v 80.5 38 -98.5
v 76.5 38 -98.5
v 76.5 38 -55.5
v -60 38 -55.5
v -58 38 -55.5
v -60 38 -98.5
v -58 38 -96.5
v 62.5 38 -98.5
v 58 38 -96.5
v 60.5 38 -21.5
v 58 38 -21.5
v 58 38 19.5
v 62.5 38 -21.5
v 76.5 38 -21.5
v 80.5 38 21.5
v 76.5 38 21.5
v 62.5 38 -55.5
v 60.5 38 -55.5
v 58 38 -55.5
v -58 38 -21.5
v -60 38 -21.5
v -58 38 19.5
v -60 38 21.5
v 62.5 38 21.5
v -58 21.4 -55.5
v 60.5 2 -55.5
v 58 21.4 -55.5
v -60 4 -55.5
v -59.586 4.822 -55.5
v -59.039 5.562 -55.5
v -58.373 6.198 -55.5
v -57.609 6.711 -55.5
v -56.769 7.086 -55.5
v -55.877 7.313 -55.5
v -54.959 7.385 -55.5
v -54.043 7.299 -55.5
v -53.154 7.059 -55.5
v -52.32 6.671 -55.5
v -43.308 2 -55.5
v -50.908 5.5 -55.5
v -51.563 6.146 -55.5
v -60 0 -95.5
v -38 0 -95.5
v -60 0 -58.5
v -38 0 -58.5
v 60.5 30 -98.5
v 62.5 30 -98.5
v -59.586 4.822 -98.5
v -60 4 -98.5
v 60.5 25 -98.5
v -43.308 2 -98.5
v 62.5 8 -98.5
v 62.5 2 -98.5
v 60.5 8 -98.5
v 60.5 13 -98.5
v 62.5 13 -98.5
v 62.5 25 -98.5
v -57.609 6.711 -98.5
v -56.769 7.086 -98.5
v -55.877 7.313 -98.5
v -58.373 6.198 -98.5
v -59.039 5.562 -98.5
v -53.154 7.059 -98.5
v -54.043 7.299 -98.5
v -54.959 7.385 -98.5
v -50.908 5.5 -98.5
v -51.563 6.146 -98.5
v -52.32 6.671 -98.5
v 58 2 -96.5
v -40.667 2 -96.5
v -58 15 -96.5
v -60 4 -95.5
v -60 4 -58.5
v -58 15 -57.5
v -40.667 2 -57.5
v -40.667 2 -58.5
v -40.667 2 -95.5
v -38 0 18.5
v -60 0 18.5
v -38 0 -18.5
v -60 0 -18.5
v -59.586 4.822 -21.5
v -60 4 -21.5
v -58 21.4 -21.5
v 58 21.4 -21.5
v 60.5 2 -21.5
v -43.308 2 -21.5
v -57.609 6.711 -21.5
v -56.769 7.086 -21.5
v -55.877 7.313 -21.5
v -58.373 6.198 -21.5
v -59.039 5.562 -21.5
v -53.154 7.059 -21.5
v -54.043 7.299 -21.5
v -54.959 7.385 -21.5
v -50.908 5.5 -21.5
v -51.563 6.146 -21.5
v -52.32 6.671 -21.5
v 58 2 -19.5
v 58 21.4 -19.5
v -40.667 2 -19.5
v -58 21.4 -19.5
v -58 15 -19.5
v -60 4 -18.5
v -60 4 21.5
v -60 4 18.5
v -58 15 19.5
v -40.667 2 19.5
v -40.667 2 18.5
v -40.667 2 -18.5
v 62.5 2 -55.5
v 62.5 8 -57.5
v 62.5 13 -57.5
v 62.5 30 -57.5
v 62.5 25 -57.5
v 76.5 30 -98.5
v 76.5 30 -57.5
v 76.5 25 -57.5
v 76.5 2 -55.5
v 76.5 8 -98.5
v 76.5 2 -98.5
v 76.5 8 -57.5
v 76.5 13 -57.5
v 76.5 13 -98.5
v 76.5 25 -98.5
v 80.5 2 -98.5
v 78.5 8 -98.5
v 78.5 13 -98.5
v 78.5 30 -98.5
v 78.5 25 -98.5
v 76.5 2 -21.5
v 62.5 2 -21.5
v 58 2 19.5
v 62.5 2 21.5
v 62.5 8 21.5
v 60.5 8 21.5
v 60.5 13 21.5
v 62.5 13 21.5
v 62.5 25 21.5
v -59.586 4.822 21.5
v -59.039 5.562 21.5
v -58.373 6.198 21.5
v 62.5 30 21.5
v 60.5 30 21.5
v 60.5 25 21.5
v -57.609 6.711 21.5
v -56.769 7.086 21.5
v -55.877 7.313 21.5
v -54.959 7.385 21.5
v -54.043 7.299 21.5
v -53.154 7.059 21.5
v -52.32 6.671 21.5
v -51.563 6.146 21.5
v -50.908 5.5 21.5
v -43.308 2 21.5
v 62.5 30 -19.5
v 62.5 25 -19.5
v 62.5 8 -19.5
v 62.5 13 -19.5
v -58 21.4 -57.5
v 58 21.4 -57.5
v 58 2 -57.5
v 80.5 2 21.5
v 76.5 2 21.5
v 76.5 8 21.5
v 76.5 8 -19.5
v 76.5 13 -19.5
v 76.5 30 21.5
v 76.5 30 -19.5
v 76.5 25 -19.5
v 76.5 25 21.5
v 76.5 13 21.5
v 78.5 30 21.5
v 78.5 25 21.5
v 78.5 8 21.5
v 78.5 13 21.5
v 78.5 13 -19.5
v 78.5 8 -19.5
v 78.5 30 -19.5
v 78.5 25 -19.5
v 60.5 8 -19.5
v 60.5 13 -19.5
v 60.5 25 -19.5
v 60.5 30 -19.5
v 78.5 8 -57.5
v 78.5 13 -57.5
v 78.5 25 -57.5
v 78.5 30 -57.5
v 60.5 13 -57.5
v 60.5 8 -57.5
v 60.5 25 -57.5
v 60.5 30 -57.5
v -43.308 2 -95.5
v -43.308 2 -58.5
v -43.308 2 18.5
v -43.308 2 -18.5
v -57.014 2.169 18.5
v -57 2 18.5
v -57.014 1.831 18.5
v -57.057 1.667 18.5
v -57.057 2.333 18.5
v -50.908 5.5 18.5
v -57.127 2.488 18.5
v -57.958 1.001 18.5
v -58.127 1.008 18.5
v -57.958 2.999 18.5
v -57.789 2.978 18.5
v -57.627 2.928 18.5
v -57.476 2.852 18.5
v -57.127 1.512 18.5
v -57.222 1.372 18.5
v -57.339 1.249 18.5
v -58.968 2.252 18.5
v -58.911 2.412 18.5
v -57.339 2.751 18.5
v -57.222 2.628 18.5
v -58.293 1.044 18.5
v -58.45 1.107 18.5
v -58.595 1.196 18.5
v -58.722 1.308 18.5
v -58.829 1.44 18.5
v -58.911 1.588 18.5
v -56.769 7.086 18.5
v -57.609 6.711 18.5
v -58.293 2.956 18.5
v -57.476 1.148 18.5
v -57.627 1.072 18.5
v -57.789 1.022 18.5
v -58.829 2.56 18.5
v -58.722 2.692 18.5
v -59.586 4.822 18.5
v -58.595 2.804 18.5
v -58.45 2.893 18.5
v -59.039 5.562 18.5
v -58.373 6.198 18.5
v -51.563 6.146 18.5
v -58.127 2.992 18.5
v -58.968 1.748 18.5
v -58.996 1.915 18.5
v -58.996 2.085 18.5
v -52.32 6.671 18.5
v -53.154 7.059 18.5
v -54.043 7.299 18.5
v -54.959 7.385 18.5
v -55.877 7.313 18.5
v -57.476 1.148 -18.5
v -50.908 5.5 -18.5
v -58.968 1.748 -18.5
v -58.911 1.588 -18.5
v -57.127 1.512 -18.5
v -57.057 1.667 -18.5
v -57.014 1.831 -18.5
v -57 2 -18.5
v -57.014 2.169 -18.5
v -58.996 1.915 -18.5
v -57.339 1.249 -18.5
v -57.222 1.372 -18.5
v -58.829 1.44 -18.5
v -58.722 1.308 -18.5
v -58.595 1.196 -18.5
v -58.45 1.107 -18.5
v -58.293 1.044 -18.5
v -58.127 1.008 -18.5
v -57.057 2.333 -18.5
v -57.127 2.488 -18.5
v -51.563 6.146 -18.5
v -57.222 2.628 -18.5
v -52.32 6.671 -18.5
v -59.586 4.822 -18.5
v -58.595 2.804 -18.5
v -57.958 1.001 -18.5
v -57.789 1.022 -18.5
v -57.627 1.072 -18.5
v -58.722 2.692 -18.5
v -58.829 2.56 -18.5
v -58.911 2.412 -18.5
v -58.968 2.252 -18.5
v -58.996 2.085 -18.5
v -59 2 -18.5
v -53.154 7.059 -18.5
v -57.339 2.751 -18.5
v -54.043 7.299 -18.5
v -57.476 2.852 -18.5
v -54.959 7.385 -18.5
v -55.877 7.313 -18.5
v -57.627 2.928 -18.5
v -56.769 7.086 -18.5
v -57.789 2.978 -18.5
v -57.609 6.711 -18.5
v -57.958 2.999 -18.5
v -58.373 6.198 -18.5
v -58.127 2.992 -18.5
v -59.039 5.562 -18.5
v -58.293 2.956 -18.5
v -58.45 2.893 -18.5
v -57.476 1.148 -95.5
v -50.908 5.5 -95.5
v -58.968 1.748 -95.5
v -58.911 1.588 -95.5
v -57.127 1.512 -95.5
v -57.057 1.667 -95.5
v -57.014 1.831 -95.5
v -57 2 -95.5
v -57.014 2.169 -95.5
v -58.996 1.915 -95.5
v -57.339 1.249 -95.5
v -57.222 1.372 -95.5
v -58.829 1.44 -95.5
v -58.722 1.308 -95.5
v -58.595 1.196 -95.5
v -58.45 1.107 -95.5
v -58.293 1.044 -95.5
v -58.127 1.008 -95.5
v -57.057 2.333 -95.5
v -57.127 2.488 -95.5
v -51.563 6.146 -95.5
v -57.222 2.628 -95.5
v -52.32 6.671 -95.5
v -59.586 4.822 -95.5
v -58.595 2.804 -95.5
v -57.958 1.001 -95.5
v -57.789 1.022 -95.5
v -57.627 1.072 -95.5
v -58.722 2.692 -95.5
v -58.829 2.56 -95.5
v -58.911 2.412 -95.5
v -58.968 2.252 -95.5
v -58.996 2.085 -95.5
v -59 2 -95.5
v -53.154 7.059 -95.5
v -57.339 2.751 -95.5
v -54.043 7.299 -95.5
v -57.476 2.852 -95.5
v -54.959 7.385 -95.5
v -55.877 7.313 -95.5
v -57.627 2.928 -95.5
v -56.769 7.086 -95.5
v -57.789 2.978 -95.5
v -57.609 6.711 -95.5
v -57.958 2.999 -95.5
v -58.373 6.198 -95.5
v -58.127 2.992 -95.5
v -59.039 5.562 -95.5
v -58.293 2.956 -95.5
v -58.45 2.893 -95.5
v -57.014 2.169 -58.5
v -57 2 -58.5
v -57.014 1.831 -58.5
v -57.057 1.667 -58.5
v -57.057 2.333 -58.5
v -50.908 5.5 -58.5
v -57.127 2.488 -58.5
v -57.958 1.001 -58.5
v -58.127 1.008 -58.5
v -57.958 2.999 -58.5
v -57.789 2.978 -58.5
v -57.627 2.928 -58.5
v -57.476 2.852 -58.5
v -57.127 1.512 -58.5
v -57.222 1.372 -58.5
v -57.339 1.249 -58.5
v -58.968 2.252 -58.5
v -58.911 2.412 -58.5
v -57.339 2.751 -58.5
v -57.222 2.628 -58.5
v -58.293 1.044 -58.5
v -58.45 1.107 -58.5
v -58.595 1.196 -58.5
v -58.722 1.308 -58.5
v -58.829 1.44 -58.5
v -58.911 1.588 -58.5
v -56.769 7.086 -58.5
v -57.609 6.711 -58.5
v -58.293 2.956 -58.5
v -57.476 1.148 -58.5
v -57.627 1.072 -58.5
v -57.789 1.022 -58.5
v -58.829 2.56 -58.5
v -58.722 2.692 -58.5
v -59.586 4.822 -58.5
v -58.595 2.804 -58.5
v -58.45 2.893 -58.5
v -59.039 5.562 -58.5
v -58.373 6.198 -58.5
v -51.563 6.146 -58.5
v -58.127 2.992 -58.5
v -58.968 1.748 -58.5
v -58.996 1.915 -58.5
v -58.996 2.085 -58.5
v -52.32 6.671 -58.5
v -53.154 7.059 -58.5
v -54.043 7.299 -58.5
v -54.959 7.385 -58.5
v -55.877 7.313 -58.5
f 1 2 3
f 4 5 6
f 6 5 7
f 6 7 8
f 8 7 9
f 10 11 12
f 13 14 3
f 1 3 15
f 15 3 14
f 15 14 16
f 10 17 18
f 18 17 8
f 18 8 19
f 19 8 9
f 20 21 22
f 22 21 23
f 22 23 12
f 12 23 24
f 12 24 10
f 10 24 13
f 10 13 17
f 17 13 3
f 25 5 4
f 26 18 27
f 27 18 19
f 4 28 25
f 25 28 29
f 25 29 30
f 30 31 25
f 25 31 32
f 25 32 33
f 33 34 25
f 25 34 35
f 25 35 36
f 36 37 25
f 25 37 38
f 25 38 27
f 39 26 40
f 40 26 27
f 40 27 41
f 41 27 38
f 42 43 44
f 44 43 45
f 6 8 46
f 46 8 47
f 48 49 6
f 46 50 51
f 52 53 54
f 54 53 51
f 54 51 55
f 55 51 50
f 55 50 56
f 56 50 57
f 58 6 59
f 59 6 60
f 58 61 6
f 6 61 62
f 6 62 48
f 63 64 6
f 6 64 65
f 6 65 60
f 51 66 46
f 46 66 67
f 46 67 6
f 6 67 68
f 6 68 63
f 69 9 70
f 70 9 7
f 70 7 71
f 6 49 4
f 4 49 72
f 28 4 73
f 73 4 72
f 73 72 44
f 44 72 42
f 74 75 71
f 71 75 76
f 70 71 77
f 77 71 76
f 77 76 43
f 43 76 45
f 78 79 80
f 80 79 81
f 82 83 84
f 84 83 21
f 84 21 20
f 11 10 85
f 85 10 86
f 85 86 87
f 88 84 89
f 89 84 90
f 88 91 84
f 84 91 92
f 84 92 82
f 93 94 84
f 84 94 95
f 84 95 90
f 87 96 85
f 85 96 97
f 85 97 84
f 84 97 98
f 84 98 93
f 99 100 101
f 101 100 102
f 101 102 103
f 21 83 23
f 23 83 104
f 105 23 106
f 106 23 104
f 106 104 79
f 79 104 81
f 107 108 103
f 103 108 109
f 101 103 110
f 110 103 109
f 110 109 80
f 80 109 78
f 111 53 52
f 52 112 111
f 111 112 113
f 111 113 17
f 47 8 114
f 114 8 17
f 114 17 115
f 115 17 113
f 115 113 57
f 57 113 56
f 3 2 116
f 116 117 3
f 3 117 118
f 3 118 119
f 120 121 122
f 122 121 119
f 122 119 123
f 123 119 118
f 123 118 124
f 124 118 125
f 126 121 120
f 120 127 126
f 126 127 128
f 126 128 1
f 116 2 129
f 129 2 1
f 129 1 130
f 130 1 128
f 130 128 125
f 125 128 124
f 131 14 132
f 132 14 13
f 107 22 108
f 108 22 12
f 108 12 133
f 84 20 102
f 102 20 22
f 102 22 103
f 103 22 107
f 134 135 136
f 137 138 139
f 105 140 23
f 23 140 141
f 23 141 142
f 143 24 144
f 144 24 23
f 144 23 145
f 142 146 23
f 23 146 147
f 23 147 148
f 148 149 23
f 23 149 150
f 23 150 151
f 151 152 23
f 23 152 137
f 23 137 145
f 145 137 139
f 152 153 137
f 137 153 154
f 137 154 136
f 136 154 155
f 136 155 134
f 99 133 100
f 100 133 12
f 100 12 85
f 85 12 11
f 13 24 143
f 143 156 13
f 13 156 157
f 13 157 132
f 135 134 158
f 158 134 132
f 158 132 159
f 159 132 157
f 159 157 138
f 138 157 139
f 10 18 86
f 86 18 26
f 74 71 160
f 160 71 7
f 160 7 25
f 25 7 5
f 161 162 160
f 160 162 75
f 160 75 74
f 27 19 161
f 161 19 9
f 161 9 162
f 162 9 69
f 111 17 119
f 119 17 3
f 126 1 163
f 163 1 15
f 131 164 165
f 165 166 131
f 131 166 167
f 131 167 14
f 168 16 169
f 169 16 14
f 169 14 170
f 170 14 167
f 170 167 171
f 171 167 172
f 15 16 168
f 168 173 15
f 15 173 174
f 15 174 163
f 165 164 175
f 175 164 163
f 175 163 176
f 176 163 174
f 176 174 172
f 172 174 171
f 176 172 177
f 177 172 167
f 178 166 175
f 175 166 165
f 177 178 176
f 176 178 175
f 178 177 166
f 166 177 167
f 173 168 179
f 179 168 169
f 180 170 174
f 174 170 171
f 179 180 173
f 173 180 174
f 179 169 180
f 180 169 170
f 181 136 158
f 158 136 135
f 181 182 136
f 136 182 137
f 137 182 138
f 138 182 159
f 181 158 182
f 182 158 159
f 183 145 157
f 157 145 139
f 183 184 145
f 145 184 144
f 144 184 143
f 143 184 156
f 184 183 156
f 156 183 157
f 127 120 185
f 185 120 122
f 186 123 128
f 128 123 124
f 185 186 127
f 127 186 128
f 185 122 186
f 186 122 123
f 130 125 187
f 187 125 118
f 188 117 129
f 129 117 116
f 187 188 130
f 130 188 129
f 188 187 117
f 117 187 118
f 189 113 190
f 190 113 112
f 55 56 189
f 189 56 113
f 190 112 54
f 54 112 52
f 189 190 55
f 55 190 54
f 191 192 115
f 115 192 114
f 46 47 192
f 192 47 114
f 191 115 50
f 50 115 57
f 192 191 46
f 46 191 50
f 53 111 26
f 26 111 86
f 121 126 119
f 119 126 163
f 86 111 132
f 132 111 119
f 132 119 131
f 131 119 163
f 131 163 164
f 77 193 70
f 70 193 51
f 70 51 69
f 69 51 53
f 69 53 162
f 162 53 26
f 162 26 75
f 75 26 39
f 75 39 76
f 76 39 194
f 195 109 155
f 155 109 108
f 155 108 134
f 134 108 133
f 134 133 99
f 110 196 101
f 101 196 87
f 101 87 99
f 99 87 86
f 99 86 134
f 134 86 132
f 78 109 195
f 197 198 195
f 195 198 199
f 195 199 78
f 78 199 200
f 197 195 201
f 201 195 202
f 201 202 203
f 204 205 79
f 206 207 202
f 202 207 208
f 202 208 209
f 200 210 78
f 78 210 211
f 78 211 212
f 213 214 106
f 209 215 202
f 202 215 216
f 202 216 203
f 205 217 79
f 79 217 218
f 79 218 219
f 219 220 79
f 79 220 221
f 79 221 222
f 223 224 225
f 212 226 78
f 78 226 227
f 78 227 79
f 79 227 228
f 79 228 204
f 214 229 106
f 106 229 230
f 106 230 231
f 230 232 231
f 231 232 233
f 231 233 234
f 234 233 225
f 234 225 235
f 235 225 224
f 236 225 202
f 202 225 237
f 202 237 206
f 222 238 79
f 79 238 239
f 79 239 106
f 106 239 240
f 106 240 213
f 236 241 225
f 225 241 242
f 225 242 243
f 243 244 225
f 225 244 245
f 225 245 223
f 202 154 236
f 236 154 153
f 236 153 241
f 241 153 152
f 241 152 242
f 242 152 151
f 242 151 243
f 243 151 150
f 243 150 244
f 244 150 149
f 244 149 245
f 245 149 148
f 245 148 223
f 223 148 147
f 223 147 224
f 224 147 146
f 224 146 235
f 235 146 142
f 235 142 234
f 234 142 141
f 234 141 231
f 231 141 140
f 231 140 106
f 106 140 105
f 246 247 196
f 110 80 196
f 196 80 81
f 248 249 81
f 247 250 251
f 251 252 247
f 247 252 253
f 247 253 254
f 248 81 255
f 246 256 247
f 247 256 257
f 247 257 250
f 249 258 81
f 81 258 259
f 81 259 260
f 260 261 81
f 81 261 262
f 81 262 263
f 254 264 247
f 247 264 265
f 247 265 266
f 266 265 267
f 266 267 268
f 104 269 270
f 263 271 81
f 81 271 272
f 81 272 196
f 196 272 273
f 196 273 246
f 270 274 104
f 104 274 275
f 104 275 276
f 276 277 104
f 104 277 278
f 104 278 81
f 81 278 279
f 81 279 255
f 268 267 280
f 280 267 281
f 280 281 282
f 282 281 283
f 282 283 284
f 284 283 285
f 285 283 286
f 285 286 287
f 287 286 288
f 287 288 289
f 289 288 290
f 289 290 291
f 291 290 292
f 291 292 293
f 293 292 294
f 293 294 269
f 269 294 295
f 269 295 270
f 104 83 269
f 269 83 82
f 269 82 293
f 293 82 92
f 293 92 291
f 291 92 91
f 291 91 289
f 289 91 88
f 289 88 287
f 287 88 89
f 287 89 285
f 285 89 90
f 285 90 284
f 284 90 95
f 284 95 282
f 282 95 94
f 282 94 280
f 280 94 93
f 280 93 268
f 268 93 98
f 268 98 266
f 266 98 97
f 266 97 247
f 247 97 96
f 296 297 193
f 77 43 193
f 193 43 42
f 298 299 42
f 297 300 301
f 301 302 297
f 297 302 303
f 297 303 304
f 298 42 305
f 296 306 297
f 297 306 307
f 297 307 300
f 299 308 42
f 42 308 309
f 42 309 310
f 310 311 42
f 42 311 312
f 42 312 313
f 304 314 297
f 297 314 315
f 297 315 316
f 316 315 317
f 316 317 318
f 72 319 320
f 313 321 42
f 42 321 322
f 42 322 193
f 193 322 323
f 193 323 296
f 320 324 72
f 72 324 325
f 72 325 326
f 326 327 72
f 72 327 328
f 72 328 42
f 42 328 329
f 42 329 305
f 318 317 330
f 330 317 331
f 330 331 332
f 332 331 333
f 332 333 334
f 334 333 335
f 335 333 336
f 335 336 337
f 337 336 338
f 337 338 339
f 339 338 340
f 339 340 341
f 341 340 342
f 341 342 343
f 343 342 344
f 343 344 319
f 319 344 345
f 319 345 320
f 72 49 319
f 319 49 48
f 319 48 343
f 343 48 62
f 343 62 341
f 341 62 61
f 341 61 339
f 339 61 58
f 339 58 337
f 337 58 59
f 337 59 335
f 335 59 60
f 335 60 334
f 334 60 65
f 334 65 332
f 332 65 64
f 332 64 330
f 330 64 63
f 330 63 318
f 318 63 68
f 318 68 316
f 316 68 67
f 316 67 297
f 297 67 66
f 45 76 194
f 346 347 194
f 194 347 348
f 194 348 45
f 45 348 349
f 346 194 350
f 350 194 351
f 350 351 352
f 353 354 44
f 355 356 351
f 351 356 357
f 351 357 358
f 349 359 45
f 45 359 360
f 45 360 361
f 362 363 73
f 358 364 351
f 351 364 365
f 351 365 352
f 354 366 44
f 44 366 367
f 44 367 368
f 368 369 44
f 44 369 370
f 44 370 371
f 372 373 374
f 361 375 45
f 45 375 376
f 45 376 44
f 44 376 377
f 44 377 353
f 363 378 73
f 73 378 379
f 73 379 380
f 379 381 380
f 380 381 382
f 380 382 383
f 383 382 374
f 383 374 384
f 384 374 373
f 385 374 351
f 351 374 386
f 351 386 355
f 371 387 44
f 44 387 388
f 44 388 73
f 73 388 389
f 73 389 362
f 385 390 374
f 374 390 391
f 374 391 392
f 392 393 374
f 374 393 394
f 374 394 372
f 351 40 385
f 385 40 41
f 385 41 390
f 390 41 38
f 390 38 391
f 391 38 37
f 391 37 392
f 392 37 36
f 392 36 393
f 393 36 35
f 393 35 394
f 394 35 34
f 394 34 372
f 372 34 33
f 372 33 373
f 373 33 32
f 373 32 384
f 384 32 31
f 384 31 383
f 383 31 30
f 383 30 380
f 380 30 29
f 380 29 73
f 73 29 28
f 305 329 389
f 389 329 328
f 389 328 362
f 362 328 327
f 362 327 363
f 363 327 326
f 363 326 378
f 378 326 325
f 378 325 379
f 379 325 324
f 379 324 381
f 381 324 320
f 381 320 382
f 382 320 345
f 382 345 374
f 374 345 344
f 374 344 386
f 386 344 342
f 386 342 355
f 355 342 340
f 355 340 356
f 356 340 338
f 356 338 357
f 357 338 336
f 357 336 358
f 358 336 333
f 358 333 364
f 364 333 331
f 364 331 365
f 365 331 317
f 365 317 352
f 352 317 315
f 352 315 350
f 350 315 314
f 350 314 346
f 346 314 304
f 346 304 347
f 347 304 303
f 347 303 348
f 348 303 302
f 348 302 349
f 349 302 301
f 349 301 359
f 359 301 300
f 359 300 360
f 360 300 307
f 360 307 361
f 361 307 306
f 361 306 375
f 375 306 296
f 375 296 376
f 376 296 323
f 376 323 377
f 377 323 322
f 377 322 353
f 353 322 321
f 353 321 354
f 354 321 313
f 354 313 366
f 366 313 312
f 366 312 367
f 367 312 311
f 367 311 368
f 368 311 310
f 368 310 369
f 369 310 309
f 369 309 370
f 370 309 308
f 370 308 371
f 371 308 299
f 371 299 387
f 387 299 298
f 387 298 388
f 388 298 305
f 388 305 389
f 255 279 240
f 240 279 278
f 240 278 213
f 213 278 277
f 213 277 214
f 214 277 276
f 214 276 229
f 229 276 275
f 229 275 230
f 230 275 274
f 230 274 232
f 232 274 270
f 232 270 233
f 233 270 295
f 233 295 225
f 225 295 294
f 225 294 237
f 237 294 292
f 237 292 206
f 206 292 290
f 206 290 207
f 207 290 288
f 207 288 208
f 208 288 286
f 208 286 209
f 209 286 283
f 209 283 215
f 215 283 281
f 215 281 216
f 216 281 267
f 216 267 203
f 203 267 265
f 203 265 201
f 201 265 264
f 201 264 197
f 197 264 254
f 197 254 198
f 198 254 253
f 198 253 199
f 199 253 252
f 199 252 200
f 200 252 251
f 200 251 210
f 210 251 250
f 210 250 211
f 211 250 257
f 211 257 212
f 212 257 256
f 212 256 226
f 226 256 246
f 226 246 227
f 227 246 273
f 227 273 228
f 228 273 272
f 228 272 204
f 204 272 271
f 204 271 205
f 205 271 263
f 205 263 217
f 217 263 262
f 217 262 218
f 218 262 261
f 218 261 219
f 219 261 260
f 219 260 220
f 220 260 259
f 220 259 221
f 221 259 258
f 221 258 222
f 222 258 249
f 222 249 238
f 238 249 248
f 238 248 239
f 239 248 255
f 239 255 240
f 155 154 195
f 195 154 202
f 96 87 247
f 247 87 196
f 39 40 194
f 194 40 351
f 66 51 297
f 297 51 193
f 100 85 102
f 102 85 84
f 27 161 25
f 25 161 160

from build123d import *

# Parameters (mm, degrees)
SKETCH2_W            = 120
SKETCH2_H            = 43
BOSS_EXTRUDE1_DEPTH  = 38
SKETCH3_W            = 116
SKETCH3_H            = 39
CUT_EXTRUDE1_DEPTH   = 38
BOSS_EXTRUDE2_DEPTH  = 39
SKETCH5_W            = 43
SKETCH5_H            = 38
BOSS_EXTRUDE3_DEPTH  = 2.5
SKETCH6_W            = 2
SKETCH6_H            = 38
BOSS_EXTRUDE4_DEPTH  = 17
SKETCH7_W            = 34
SKETCH7_H            = 38
BOSS_EXTRUDE5_DEPTH  = 18
SKETCH8_W            = 4
SKETCH8_H            = 38
BOSS_EXTRUDE6_DEPTH  = 43
SKETCH9_W            = 18
SKETCH9_H            = 5
CUT_EXTRUDE2_DEPTH   = 41
SKETCH11_W           = 120
SKETCH11_H           = 2
CUT_EXTRUDE3_DEPTH   = 118.5
CUT_EXTRUDE4_DEPTH   = 3
MIRROR4_COPY_1_DEPTH = 3
CUT_EXTRUDE5_START   = -114
SKETCH13_R           = 1
CUT_EXTRUDE5_DEPTH   = 114
SKETCH14_W           = 116
SKETCH14_H           = 2
CUT_EXTRUDE6_DEPTH   = 16.6


with BuildPart() as part:
    # Sketch2 → Boss-Extrude1 (new body)
    with BuildSketch(Plane(origin=(0, 0, 0), x_dir=(1, 0, 0), z_dir=(0, 1, 0))):
        Rectangle(SKETCH2_W, SKETCH2_H)
    extrude(amount=BOSS_EXTRUDE1_DEPTH)

    # Sketch3 → Cut-Extrude1 (cut)
    with BuildSketch(Plane(origin=(0, 38, 0), x_dir=(1, 0, 0), z_dir=(0, 1, 0))):
        Rectangle(SKETCH3_W, SKETCH3_H)
    extrude(amount=-CUT_EXTRUDE1_DEPTH, mode=Mode.SUBTRACT)

    # Sketch4 → Boss-Extrude2 (add)
    with BuildSketch(Plane.XY.offset(-19.5)):
        Polygon((-58, 0), (-58, 15), (-38, 0), align=None)
    extrude(amount=BOSS_EXTRUDE2_DEPTH)

    # Sketch5 → Boss-Extrude3 (add)
    with BuildSketch(Plane(origin=(60, 0, 0), x_dir=(0, 0, -1), z_dir=(1, 0, 0))):
        with Locations((0, 19)):
            Rectangle(SKETCH5_W, SKETCH5_H)
    extrude(amount=BOSS_EXTRUDE3_DEPTH)

    # Sketch6 → Boss-Extrude4 (add)
    with BuildSketch(Plane(origin=(0, 0, -21.5), x_dir=(-1, 0, 0), z_dir=(0, 0, -1))):
        with Locations((-61.5, 19)):
            Rectangle(SKETCH6_W, SKETCH6_H)
    extrude(amount=BOSS_EXTRUDE4_DEPTH)

    # Mirror1: part across plane


with BuildPart() as part_1:
    add(part.part)
    add(part.part.mirror(Plane(origin=(0, 0, -38.5), x_dir=(1, 0, 0), z_dir=(0, 0, -1))))

    # Sketch7 → Boss-Extrude5 (add)
    with BuildSketch(Plane(origin=(62.5, 0, 0), x_dir=(0, 0, -1), z_dir=(1, 0, 0))):
        with Locations((38.5, 19)):
            Rectangle(SKETCH7_W, SKETCH7_H)
    extrude(amount=BOSS_EXTRUDE5_DEPTH)

    # Sketch8 → Boss-Extrude6 (add)
    with BuildSketch(Plane.XY.offset(-21.5)):
        with Locations((78.5, 19)):
            Rectangle(SKETCH8_W, SKETCH8_H)
    boss_extrude6 = extrude(amount=BOSS_EXTRUDE6_DEPTH)

    # Sketch9 → Cut-Extrude2 (cut)
    with BuildSketch(Plane.XY.offset(21.5)):
        with Locations((69.5, 27.5)):
            Rectangle(SKETCH9_W, SKETCH9_H)
        with Locations((69.5, 10.5)):
            Rectangle(SKETCH9_W, SKETCH9_H)
    cut_extrude2 = extrude(amount=-CUT_EXTRUDE2_DEPTH, mode=Mode.SUBTRACT)

    # Mirror2: Boss-Extrude6, Cut-Extrude2 across plane
    add(boss_extrude6.mirror(Plane(origin=(0, 0, -38.5), x_dir=(1, 0, 0), z_dir=(0, 0, -1))))
    add(cut_extrude2.mirror(Plane(origin=(0, 0, -38.5), x_dir=(1, 0, 0), z_dir=(0, 0, -1))), mode=Mode.SUBTRACT)

    # Sketch11 → Cut-Extrude3 (cut)
    with BuildSketch(Plane(origin=(80.5, 0, 0), x_dir=(0, 0, -1), z_dir=(1, 0, 0))):
        with Locations((38.5, 1)):
            Rectangle(SKETCH11_W, SKETCH11_H)
    extrude(amount=-CUT_EXTRUDE3_DEPTH, mode=Mode.SUBTRACT)

    # Sketch12 → Cut-Extrude4 (cut)
    with BuildSketch(Plane.XY.offset(21.5)):
        with BuildLine():
            Line((-38, 2), (-49.614835193, 2))
            ThreePointArc((-49.614835193, 2), (-56.018375168, 7.287996976), (-60, 0))
            Line((-60, 0), (-38, 0))
            Line((-38, 0), (-38, 2))
        make_face()
    cut_extrude4 = extrude(amount=-CUT_EXTRUDE4_DEPTH, mode=Mode.SUBTRACT)

    # Mirror3: Cut-Extrude4 across plane
    add(cut_extrude4.mirror(Plane.XY), mode=Mode.SUBTRACT)

    # Mirror4: Cut-Extrude4 across plane
    add(cut_extrude4.mirror(Plane(origin=(0, 0, -38.5), x_dir=(1, 0, 0), z_dir=(0, 0, -1))), mode=Mode.SUBTRACT)

    # Mirror4 copy 1 sketch → Mirror4 copy 1 (cut)
    with BuildSketch(Plane.XY.offset(-55.5)):
        with BuildLine():
            Line((-38, 2), (-49.614835193, 2))
            ThreePointArc((-49.614835193, 2), (-56.018375168, 7.287996976), (-60, 0))
            Line((-60, 0), (-38, 0))
            Line((-38, 0), (-38, 2))
        make_face()
    extrude(amount=-MIRROR4_COPY_1_DEPTH, mode=Mode.SUBTRACT)

    # Sketch13 → Cut-Extrude5 (cut)
    with BuildSketch(Plane.XY.offset(18.5).offset(CUT_EXTRUDE5_START)):
        with Locations((-58, 2)):
            Circle(SKETCH13_R)
    extrude(amount=CUT_EXTRUDE5_DEPTH, mode=Mode.SUBTRACT)

    # Chamfer1
    # the kernel refuses this chamfer: 10 mm, written as the material it takes off along each edge
    with BuildSketch(Plane(origin=(-49.614835193, 2, 38.180669666), x_dir=(-0.41152080336556635, 0.9114003666870882, 0), z_dir=(0, 0, -1))) as chamfer1_piece_1:
        with BuildLine():
            Line((4.024103798, 0), (-2.897424879, 6.010331734))
            Line((-2.897424879, 6.010331734), (-3.079704953, 5.928027573))
            ThreePointArc((-3.079704953, 5.928027573), (-1.554736759, 2.957293148), (-0.182280073, -0.082304161))
            Line((-0.182280073, -0.082304161), (0.082304161, -0.182280073))
            ThreePointArc((0.082304161, -0.182280073), (2.000716354, 0.27264804), (3.968173362, -0.192020276))
            Line((3.968173362, -0.192020276), (4.024103798, 0))
        make_face()
    extrude(amount=19.680669666, mode=Mode.SUBTRACT)

    # Chamfer2
    # the kernel refuses this chamfer: 10 mm, written as the material it takes off along each edge
    with BuildSketch(Plane(origin=(-49.614835193, 2, -38.180669666), x_dir=(0.9996854583228201, -0.0250795617564035, 0), z_dir=(0, 0, 1))) as chamfer2_piece_1:
        with BuildLine():
            Line((6.672267866, 0), (-1.747462586, 3.624884258))
            Line((-1.747462586, 3.624884258), (-1.896145364, 3.491117927))
            ThreePointArc((-1.896145364, 3.491117927), (-0.623209418, 1.920628258), (-0.199937092, -0.005015912))
            Line((-0.199937092, -0.005015912), (0.005015912, -0.199937092))
            ThreePointArc((0.005015912, -0.199937092), (3.339051469, -0.116294632), (6.677283779, -0.199937092))
            Line((6.677283779, -0.199937092), (6.672267866, 0))
        make_face()
    extrude(amount=19.680669666, mode=Mode.SUBTRACT)

    # Chamfer3
    # the kernel refuses this chamfer: 10 mm, written as the material it takes off along each edge
    with BuildSketch(Plane(origin=(-49.614835193, 2, -38.819330334), x_dir=(0.9996854583228201, -0.02507956175640344, 0), z_dir=(0, 0, -1))) as chamfer3_piece_1:
        with BuildLine():
            Line((6.672267866, 0), (-1.747462586, -3.624884258))
            Line((-1.747462586, -3.624884258), (-1.896145364, -3.491117927))
            ThreePointArc((-1.896145364, -3.491117927), (-0.623209418, -1.920628258), (-0.199937092, 0.005015912))
            Line((-0.199937092, 0.005015912), (0.005015912, 0.199937092))
            ThreePointArc((0.005015912, 0.199937092), (3.339051469, 0.116294632), (6.677283779, 0.199937092))
            Line((6.677283779, 0.199937092), (6.672267866, 0))
        make_face()
    extrude(amount=19.680669666, mode=Mode.SUBTRACT)

    # Chamfer4
    # the kernel refuses this chamfer: 10 mm, written as the material it takes off along each edge
    with BuildSketch(Plane(origin=(-49.614835193, 2, -115.180669666), x_dir=(0.9996854583228201, -0.0250795617564035, 0), z_dir=(0, 0, 1))) as chamfer4_piece_1:
        with BuildLine():
            Line((6.672267866, 0), (-1.747462586, 3.624884258))
            Line((-1.747462586, 3.624884258), (-1.896145364, 3.491117927))
            ThreePointArc((-1.896145364, 3.491117927), (-0.623209418, 1.920628258), (-0.199937092, -0.005015912))
            Line((-0.199937092, -0.005015912), (0.005015912, -0.199937092))
            ThreePointArc((0.005015912, -0.199937092), (3.339051469, -0.116294632), (6.677283779, -0.199937092))
            Line((6.677283779, -0.199937092), (6.672267866, 0))
        make_face()
    extrude(amount=19.680669666, mode=Mode.SUBTRACT)

    # Sketch14 → Cut-Extrude6 (cut)
    with BuildSketch(Plane(origin=(0, 38, 0), x_dir=(1, 0, 0), z_dir=(0, 1, 0))):
        with Locations((0, 20.5)):
            Rectangle(SKETCH14_W, SKETCH14_H)
    cut_extrude6 = extrude(amount=-CUT_EXTRUDE6_DEPTH, mode=Mode.SUBTRACT)

    # Mirror5: Cut-Extrude6 across plane
    add(cut_extrude6.mirror(Plane(origin=(0, 0, -38.5), x_dir=(1, 0, 0), z_dir=(0, 0, -1))), mode=Mode.SUBTRACT)


solid = part_1.part
